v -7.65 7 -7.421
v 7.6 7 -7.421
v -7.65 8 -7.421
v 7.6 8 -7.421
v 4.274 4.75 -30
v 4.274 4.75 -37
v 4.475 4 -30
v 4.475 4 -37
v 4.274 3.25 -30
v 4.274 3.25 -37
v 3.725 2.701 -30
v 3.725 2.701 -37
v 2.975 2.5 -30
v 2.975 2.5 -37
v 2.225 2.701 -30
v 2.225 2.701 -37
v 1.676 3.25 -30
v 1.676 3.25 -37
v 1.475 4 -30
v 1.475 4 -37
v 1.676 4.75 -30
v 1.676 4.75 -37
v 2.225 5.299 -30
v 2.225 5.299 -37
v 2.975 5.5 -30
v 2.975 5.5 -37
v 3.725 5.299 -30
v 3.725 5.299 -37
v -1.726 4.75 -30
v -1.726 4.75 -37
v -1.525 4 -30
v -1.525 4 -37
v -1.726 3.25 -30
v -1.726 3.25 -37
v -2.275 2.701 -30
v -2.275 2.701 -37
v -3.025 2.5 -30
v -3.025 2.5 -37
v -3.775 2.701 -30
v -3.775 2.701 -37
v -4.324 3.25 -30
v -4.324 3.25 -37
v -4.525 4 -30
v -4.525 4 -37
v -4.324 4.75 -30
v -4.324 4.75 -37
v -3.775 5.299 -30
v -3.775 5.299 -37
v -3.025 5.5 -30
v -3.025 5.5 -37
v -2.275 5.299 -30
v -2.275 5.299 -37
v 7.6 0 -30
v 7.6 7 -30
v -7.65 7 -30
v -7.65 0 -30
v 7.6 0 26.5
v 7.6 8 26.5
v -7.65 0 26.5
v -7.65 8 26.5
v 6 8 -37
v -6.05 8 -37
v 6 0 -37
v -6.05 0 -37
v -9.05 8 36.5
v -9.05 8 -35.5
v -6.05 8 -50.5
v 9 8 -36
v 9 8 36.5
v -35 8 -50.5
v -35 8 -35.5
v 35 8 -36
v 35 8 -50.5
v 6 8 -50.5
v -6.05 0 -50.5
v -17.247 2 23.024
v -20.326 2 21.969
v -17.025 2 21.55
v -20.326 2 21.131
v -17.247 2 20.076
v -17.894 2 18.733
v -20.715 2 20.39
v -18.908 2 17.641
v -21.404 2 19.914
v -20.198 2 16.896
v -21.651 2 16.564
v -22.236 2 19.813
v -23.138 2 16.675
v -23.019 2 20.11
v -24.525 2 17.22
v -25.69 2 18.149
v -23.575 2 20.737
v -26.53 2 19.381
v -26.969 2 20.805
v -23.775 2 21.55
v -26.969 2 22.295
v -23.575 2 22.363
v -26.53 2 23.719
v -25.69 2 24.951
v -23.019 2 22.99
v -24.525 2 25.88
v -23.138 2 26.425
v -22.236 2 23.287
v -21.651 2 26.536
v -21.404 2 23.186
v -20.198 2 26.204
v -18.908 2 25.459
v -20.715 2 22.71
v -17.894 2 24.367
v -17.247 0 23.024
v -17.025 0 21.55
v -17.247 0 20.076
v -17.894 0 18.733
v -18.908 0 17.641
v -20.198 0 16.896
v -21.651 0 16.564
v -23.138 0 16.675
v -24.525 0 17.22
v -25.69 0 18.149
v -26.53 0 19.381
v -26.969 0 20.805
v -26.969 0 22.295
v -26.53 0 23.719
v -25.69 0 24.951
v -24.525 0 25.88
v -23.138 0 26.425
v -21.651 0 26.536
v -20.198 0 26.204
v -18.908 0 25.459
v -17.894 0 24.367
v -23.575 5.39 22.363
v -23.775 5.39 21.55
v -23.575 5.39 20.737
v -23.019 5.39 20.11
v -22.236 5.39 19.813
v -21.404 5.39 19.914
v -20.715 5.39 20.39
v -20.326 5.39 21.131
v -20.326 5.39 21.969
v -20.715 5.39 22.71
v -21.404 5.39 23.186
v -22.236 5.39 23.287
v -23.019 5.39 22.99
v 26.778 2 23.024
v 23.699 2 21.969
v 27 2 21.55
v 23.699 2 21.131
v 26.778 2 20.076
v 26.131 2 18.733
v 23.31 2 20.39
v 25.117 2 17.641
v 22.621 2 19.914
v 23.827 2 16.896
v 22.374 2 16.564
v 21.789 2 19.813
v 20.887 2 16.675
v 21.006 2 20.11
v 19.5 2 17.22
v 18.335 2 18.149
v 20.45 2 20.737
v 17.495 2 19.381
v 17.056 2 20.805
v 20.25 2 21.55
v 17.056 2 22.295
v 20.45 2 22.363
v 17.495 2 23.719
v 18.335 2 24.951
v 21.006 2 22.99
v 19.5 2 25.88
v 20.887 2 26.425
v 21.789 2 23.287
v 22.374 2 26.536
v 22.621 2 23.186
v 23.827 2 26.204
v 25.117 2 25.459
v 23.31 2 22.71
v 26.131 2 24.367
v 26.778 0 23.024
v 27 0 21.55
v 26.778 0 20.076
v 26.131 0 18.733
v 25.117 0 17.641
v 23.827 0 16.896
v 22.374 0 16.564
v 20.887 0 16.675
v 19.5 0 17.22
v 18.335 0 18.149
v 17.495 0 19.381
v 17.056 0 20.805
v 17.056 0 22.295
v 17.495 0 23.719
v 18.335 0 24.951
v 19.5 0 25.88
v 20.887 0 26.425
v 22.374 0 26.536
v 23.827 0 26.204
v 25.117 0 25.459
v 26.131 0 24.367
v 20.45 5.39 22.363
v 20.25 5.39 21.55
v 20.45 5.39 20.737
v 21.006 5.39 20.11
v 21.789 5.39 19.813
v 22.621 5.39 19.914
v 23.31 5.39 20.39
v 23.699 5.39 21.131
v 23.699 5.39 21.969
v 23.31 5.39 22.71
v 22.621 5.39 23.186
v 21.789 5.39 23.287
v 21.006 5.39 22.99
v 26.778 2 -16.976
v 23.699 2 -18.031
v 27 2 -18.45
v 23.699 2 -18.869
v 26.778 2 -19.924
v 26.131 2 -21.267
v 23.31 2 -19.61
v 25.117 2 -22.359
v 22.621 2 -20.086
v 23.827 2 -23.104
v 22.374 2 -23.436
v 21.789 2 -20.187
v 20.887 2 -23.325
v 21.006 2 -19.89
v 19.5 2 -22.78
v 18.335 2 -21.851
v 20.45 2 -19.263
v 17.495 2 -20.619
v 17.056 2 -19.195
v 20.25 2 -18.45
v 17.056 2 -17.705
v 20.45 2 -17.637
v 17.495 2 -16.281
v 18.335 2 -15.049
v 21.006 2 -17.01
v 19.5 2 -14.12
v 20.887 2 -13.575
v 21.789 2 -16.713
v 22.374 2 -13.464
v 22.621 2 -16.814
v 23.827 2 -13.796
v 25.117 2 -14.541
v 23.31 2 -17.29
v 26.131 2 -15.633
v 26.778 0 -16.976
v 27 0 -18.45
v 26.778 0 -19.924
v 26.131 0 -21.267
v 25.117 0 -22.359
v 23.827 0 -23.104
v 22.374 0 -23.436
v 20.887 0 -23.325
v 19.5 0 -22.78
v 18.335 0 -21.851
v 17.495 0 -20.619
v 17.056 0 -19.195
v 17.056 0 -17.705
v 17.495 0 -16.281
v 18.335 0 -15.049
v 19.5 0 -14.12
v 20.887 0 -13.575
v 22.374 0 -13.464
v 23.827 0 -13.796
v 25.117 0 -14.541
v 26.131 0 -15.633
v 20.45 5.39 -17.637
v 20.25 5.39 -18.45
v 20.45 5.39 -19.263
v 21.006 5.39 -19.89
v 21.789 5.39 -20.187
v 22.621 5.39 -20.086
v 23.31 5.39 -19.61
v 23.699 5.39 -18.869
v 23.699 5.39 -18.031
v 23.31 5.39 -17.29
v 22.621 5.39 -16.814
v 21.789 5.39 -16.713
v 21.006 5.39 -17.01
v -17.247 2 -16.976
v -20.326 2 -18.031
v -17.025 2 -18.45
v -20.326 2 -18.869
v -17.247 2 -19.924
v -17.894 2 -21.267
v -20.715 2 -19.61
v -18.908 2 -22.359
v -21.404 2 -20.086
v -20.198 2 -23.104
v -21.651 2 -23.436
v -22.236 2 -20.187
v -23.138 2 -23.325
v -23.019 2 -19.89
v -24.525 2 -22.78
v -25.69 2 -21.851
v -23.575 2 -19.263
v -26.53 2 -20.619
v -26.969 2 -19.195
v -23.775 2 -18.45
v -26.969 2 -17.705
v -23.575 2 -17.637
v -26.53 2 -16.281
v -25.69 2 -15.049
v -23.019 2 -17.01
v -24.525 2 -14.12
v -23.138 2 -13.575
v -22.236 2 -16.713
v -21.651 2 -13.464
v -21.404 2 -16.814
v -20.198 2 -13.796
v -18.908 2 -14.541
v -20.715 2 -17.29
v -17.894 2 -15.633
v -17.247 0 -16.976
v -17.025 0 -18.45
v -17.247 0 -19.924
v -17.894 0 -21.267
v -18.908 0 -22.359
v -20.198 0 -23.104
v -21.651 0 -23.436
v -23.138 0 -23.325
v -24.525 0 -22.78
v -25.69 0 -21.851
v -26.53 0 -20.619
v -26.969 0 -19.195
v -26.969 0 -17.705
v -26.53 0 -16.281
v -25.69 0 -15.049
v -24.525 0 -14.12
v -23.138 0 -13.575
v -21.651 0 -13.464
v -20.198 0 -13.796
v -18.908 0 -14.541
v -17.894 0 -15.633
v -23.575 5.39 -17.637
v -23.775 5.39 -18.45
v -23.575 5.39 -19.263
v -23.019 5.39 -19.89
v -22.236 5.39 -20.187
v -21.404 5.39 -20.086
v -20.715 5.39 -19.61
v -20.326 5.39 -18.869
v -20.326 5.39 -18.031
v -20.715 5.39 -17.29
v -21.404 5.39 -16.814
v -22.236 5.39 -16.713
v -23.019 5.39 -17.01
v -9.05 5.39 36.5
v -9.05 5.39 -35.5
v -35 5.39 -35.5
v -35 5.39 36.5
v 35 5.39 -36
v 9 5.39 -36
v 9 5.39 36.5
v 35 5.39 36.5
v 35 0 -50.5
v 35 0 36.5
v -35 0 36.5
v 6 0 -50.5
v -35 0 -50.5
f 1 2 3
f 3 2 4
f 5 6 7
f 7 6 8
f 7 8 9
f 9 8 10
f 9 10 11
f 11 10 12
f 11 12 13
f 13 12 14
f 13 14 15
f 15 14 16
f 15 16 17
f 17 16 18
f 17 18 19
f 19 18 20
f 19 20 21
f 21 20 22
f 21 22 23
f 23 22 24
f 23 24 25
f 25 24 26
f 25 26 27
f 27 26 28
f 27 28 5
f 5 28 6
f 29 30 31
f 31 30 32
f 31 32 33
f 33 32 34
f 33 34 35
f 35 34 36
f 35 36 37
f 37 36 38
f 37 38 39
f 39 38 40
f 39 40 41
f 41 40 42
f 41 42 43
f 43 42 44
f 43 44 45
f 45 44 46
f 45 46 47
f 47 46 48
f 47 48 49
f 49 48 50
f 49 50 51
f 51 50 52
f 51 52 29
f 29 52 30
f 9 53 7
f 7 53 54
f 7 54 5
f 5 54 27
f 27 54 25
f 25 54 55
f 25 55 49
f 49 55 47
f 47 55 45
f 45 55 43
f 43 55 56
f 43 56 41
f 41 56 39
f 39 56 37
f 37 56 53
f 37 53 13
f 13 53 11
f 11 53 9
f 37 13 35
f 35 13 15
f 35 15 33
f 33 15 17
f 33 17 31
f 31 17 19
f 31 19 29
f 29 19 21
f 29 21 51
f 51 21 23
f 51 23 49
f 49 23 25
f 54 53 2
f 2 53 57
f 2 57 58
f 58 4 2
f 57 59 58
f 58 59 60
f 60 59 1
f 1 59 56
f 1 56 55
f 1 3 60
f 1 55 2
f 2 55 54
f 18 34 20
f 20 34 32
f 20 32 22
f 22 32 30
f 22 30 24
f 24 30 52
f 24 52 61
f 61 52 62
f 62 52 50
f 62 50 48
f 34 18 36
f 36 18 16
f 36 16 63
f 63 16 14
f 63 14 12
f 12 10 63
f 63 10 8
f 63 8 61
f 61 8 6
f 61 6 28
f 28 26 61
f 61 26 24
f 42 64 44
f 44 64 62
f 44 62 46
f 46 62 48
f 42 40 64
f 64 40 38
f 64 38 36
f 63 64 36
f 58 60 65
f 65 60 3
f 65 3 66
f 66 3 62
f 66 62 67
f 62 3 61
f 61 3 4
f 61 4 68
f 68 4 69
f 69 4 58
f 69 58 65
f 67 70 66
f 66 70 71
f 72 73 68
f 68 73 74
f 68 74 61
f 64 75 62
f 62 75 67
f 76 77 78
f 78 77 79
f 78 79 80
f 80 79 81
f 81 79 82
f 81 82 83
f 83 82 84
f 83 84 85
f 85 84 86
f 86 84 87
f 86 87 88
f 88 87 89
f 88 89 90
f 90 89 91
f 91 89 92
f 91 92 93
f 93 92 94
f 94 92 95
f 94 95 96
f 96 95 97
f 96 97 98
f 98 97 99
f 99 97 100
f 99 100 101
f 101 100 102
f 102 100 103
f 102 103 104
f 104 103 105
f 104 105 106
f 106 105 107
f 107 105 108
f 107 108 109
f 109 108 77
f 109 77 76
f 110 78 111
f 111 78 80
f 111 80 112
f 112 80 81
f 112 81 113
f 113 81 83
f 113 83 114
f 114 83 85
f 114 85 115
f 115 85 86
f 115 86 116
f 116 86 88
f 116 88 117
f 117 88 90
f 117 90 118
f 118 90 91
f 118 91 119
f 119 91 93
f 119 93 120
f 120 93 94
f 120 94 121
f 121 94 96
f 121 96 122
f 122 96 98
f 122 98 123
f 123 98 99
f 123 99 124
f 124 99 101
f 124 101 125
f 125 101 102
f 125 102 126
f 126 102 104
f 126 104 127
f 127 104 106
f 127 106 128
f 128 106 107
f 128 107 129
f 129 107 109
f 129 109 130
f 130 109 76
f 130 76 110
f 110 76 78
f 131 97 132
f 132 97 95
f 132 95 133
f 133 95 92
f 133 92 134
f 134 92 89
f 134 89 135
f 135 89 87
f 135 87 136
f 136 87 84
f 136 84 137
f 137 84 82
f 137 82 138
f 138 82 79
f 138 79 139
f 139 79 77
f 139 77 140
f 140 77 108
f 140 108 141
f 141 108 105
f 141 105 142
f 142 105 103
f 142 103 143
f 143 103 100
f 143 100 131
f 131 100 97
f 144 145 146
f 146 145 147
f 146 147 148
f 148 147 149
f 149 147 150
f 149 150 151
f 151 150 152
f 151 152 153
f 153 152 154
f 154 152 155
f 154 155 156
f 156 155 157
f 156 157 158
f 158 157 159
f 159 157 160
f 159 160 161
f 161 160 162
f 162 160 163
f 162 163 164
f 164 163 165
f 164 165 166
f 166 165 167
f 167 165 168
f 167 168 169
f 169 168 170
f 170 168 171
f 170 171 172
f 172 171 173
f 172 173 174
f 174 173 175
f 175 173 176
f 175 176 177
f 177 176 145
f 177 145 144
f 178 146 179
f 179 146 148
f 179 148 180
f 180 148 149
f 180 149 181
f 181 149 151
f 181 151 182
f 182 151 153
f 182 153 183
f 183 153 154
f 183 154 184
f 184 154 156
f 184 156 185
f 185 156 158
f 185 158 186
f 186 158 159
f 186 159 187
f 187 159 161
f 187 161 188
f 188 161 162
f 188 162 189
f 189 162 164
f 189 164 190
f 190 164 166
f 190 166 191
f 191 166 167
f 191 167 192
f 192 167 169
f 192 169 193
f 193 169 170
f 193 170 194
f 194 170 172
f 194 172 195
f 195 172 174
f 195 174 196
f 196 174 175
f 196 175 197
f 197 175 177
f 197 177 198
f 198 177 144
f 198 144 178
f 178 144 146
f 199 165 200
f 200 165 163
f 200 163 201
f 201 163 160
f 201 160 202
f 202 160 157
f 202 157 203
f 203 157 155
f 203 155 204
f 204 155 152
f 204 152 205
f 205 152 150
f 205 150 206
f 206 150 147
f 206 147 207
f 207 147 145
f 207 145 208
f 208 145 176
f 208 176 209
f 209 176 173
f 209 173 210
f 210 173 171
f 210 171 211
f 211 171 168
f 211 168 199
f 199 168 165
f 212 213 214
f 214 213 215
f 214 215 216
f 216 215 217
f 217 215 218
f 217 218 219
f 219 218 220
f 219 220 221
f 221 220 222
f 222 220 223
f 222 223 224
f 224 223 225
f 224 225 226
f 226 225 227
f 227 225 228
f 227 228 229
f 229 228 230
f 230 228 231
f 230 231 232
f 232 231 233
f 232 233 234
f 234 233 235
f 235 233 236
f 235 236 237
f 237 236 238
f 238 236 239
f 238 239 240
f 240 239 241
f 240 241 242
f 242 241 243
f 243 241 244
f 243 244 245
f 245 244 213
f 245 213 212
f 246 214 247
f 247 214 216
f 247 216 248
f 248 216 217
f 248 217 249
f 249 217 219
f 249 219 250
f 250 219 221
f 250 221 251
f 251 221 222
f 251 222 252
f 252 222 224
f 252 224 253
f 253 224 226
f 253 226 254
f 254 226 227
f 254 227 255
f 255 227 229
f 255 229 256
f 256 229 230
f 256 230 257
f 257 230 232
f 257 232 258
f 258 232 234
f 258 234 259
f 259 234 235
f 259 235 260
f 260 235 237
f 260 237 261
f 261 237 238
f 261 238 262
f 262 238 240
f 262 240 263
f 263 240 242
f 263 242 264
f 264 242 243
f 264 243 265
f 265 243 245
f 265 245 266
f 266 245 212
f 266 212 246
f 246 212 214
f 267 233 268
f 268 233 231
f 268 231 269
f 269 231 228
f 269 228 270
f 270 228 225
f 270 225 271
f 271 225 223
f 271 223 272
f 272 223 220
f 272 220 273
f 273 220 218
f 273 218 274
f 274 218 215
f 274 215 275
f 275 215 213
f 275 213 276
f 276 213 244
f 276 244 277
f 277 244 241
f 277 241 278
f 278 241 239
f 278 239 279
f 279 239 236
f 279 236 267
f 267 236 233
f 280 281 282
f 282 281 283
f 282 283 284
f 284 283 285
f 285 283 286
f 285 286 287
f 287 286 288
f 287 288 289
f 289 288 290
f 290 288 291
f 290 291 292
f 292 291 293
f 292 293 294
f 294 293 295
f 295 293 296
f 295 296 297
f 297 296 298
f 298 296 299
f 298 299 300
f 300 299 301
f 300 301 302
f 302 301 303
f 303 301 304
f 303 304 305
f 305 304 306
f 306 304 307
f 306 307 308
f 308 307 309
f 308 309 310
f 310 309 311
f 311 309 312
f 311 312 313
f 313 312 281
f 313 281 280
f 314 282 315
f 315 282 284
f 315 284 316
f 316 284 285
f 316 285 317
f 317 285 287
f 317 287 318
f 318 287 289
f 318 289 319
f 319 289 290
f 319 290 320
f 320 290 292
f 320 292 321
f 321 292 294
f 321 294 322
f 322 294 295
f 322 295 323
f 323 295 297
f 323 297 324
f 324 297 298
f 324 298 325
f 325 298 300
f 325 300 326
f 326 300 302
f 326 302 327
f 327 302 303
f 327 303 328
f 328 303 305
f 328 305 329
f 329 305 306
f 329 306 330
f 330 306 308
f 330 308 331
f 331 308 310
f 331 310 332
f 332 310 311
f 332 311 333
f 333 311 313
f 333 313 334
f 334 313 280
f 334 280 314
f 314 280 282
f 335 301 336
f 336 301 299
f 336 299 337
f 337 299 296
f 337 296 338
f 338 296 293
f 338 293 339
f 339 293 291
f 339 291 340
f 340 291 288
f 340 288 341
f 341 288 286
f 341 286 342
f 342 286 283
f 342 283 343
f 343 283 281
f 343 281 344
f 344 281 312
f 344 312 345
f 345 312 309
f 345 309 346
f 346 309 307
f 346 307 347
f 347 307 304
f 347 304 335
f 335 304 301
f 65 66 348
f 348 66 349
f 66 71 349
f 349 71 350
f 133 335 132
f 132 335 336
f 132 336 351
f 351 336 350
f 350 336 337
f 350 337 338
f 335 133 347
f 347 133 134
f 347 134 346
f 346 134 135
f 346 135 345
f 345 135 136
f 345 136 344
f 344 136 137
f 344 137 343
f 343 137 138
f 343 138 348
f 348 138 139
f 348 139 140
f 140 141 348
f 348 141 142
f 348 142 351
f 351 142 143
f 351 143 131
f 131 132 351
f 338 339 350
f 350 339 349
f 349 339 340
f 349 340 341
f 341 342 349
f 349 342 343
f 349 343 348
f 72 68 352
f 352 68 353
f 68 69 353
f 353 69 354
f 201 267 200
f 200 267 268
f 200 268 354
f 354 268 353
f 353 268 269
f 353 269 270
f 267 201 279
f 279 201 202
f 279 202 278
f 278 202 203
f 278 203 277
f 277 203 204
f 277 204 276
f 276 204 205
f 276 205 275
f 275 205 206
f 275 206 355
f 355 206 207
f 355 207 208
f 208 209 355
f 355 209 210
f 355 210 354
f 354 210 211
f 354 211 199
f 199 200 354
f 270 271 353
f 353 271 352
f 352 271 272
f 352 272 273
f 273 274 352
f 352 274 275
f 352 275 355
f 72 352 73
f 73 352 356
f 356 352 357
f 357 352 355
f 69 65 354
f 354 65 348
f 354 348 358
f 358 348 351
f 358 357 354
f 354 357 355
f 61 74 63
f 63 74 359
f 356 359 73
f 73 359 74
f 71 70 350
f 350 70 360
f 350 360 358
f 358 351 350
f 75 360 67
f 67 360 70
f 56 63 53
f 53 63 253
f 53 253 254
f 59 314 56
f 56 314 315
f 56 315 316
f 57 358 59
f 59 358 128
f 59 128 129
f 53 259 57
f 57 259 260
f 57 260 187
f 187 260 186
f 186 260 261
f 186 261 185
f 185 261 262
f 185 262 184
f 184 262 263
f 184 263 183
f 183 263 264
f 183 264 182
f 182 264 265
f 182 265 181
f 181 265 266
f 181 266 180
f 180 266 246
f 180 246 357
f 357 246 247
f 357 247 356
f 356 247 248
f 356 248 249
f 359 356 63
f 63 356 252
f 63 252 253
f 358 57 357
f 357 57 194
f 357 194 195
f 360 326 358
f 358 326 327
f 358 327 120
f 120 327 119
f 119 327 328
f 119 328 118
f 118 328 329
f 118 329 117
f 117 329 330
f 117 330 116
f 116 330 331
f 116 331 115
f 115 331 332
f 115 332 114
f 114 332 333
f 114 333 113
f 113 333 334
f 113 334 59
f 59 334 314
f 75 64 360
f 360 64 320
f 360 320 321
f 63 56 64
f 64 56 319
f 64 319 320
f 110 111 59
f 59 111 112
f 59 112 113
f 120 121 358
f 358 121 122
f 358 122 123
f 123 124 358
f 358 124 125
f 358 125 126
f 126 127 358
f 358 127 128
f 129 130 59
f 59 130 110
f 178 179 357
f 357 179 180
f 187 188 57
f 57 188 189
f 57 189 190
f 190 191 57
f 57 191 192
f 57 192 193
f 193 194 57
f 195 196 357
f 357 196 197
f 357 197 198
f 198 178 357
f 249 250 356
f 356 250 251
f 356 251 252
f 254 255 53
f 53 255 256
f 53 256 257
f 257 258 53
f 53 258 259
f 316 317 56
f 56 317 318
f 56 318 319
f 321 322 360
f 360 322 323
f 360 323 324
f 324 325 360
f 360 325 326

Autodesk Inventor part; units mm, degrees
ref_plane "YZ Plane" through (0, 0, 0) normal (1, 0, 0) x (0, 1, 0)
ref_plane "XZ Plane" through (0, 0, 0) normal (0, 1, 0) x (-1, 0, 0)
ref_plane "XY Plane" through (0, 0, 0) normal (0, 0, 1) x (1, 0, 0)
sketch "Sketch1" plane through (0, 0, 0) normal (0, 1, 0) x (-1, 0, 0)
  line L0 (-35, 36.5) -> (35, 36.5)
  line L1 (35, 36.5) -> (35, -36.5)
  line L2 (35, -36.5) -> (-35, -36.5)
  line L3 (-35, -36.5) -> (-35, 36.5)
  line L4 (-35, 36.5) -> (35, -36.5) construction
  line L5 (35, 36.5) -> (-35, -36.5) construction
  line L6 (-35, -36.5) -> (-35, -50.5)
  line L7 (-35, -50.5) -> (-6, -50.5)
  line L8 (6.0499, -50.5) -> (35, -50.5)
  line L9 (35, -50.5) -> (35, -36.5)
  line L10 (6.0499, -36.5) -> (6.0499, -43.5)
  line L11 (6.0499, -43.5) -> (-6, -43.5)
  line L12 (-6, -43.5) -> (-6, -36.5)
  line L13 (-6, -50.5) -> (-6, -43.5)
  line L14 (6.0499, -50.5) -> (6.0499, -43.5)
  point P0 (0, 0)
  dimension "d0" = 70
  dimension "d1" = 73
  dimension "d2" = 14
  dimension "d3" = 29
  dimension "d4" = 7
  dimension "d5" = 87
  dimension "d61" = 7
  dimension "d64" = 12.0499
sketch "Sketch2" plane through (0, 0, 0) normal (0, 1, 0) x (-1, 0, 0)
  point P0 (0, 0)
extrude "Extrusion1" add sketch "Sketch1" along normal blind 8 contours L0 L1 L2 L3 | L2 L12 L13 L7 L6 | L9 L8 L14 L10 L2
sketch "Sketch3" plane through (0, 8, 0) normal (0, 1, 0) x (1, 0, 0)
  line L0 (9, 36) -> (9, -36.5)
  line L1 (35, -36.5) -> (35, 36)
  line L2 (9, 36) -> (35, 36)
  line L3 (6, 50.5) -> (6, 36.5) projected
  line L4 (-9.0499, -36.5) -> (-9.0499, 35.5)
  line L5 (-9.0499, 35.5) -> (-35, 35.5)
  line L6 (-35, 35.5) -> (-35, -36.5)
  line L7 (-35, -36.5) -> (-9.0499, -36.5)
  line L8 (-6.0499, 36.5) -> (-6.0499, 50.5) projected
  line L9 (9, -36.5) -> (35, -36.5)
  point P0 (0, 0)
  point P1 (6, 43.5)
  point P2 (-6.0499, 43.5)
  dimension "d8" = 3
  dimension "d9" = 3
extrude "Extrusion2" cut sketch "Sketch3" against normal blind 2.61
sketch "Sketch4" plane through (0, 0, 0) normal (0, -1, 0) x (1, 0, 0)
  line L0 (-35, 36.5) -> (35, 36.5) projected
  line L1 (-29.525, 36.5) -> (-29.525, -42.6114)
  line L2 (-35, -50.5) -> (-35, 36.5) projected
  line L3 (29.525, 36.5) -> (29.525, -43.7753)
  line L4 (35, 36.5) -> (35, -50.5) projected
  line L5 (-14.525, 36.5) -> (-14.525, -22.6051)
  line L6 (14.5, 36.5) -> (14.5, -47.1695)
  line L7 (-22.025, 36.5) -> (-22.025, -33.1573)
  line L8 (-22.025, 36.5) -> (-22.025, 23.3)
  circle A0 centre (-22.025, 21.55) radius 1.75
  line L9 (-9.0499, 36.5) -> (9, 36.5) projected
  line L10 (22, 36.5) -> (22, -38.3698)
  line L11 (22, 36.5) -> (22, 23.3)
  circle A1 centre (22, 21.55) radius 1.75
  circle A2 centre (22, -18.45) radius 1.75
  circle A3 centre (-22.025, -18.45) radius 1.75
  point P0 (0, 0)
  point P1 (-35, -56.5)
  point P2 (22.1782, -20.1909)
  point P3 (-23.772, -18.5519)
  dimension "d40" = 3.5
  dimension "d45" = 3.5
  dimension "d46" = 3.5
  dimension "d47" = 36.5
  dimension "d48" = 3.5
  dimension "d31" = 5.475
  dimension "d32" = 5.475
  dimension "d33" = 15
  dimension "d38" = 7.5
  dimension "d39" = 13.2
  dimension "d43" = 7.5
  dimension "d44" = 13.2
  dimension "d49" = 40
  dimension "d57" = 14.525
hole "Hole1" at (22, 0, 21.55) at (22, 0, -18.45) at (-22.025, 0, 21.55) at (-22.025, 0, -18.45) direction (0, 1, 0) diameter 3.5 depth 15.664 counterbore diameter 10 counterbore depth 2
sketch "Sketch5" plane through (6, 0, -36.5) normal (0, 0, -1) x (-1, 0, 0)
  line L0 (41, 0) -> (-29, 0) projected
  line L1 (0, 0) -> (15.0499, 0)
  line L2 (15.0499, 0) -> (15.0499, 8)
  line L3 (15.0499, 8) -> (0, 8)
  line L4 (0, 8) -> (0, 0)
  point P0 (6, 0)
extrude "Extrusion3" add sketch "Sketch5" along normal blind 0.5
sketch "Sketch10" plane through (0, 0, 0) normal (0, -1, 0) x (1, 0, 0)
  line L0 (-7.6499, -30) -> (-7.6499, 26.5)
  line L1 (-7.6499, 26.5) -> (7.6, 26.5)
  line L2 (7.6, 26.5) -> (7.6, -30)
  line L3 (7.6, -30) -> (-7.6499, -30)
  line L4 (6, -37) -> (-6.0499, -37) projected
  line L5 (-35, 36.5) -> (35, 36.5) projected
  line L6 (9, 36.5) -> (9, -36) projected
  line L7 (-9.0499, -35.5) -> (-9.0499, 36.5) projected
  point P0 (0, 0)
  dimension "d72" = 7
  dimension "d73" = 10
  dimension "d74" = 1.4
  dimension "d75" = 1.4
extrude "Extrusion4" cut sketch "Sketch10" against normal blind 7
sketch "Sketch12" plane through (6, 0, -37) normal (0, 0, -1) x (-1, 0, 0)
  line L0 (12.0499, 0) -> (12.0499, 8) projected
  line L1 (0, 0) -> (0, 8) projected
  circle A0 centre (3.025, 4) radius 1.5
  circle A1 centre (9.025, 4) radius 1.5
  line L2 (6.025, 1.0105) -> (6.025, 8)
  line L3 (12.0499, 8) -> (0, 8) projected
  point P0 (6, 0)
  dimension "d78" = 12.0499
  dimension "d79" = 3
  dimension "d80" = 3
  dimension "d82" = 3
  dimension "d83" = 3
  dimension "d84" = 2.5
hole "Hole2" at (2.975, 4, -37) at (-3.025, 4, -37) direction (0, 0, 1) diameter 3 depth 10.5 tip angle 118
sketch "Sketch13" plane through (0, 8, 0) normal (0, 1, 0) x (1, 0, 0)
  line L0 (-7.6499, -26.5) -> (7.6, -26.5) projected
  line L1 (-7.7014, -26.5) -> (7.6, -26.5)
  line L2 (7.6, -26.5) -> (7.6, 7.4212)
  line L3 (7.6, -26.5) -> (7.6, 30) projected
  line L4 (-7.6499, 7.4212) -> (-7.6499, -26.5)
  line L5 (-7.6499, 7.4212) -> (7.6, 7.4212)
  point P0 (0, 0)
  point P1 (8.2986, -26.5)
extrude "Extrusion5" cut sketch "Sketch13" against normal blind 10
properties part number "floor-4" material "ABS Plastic"
